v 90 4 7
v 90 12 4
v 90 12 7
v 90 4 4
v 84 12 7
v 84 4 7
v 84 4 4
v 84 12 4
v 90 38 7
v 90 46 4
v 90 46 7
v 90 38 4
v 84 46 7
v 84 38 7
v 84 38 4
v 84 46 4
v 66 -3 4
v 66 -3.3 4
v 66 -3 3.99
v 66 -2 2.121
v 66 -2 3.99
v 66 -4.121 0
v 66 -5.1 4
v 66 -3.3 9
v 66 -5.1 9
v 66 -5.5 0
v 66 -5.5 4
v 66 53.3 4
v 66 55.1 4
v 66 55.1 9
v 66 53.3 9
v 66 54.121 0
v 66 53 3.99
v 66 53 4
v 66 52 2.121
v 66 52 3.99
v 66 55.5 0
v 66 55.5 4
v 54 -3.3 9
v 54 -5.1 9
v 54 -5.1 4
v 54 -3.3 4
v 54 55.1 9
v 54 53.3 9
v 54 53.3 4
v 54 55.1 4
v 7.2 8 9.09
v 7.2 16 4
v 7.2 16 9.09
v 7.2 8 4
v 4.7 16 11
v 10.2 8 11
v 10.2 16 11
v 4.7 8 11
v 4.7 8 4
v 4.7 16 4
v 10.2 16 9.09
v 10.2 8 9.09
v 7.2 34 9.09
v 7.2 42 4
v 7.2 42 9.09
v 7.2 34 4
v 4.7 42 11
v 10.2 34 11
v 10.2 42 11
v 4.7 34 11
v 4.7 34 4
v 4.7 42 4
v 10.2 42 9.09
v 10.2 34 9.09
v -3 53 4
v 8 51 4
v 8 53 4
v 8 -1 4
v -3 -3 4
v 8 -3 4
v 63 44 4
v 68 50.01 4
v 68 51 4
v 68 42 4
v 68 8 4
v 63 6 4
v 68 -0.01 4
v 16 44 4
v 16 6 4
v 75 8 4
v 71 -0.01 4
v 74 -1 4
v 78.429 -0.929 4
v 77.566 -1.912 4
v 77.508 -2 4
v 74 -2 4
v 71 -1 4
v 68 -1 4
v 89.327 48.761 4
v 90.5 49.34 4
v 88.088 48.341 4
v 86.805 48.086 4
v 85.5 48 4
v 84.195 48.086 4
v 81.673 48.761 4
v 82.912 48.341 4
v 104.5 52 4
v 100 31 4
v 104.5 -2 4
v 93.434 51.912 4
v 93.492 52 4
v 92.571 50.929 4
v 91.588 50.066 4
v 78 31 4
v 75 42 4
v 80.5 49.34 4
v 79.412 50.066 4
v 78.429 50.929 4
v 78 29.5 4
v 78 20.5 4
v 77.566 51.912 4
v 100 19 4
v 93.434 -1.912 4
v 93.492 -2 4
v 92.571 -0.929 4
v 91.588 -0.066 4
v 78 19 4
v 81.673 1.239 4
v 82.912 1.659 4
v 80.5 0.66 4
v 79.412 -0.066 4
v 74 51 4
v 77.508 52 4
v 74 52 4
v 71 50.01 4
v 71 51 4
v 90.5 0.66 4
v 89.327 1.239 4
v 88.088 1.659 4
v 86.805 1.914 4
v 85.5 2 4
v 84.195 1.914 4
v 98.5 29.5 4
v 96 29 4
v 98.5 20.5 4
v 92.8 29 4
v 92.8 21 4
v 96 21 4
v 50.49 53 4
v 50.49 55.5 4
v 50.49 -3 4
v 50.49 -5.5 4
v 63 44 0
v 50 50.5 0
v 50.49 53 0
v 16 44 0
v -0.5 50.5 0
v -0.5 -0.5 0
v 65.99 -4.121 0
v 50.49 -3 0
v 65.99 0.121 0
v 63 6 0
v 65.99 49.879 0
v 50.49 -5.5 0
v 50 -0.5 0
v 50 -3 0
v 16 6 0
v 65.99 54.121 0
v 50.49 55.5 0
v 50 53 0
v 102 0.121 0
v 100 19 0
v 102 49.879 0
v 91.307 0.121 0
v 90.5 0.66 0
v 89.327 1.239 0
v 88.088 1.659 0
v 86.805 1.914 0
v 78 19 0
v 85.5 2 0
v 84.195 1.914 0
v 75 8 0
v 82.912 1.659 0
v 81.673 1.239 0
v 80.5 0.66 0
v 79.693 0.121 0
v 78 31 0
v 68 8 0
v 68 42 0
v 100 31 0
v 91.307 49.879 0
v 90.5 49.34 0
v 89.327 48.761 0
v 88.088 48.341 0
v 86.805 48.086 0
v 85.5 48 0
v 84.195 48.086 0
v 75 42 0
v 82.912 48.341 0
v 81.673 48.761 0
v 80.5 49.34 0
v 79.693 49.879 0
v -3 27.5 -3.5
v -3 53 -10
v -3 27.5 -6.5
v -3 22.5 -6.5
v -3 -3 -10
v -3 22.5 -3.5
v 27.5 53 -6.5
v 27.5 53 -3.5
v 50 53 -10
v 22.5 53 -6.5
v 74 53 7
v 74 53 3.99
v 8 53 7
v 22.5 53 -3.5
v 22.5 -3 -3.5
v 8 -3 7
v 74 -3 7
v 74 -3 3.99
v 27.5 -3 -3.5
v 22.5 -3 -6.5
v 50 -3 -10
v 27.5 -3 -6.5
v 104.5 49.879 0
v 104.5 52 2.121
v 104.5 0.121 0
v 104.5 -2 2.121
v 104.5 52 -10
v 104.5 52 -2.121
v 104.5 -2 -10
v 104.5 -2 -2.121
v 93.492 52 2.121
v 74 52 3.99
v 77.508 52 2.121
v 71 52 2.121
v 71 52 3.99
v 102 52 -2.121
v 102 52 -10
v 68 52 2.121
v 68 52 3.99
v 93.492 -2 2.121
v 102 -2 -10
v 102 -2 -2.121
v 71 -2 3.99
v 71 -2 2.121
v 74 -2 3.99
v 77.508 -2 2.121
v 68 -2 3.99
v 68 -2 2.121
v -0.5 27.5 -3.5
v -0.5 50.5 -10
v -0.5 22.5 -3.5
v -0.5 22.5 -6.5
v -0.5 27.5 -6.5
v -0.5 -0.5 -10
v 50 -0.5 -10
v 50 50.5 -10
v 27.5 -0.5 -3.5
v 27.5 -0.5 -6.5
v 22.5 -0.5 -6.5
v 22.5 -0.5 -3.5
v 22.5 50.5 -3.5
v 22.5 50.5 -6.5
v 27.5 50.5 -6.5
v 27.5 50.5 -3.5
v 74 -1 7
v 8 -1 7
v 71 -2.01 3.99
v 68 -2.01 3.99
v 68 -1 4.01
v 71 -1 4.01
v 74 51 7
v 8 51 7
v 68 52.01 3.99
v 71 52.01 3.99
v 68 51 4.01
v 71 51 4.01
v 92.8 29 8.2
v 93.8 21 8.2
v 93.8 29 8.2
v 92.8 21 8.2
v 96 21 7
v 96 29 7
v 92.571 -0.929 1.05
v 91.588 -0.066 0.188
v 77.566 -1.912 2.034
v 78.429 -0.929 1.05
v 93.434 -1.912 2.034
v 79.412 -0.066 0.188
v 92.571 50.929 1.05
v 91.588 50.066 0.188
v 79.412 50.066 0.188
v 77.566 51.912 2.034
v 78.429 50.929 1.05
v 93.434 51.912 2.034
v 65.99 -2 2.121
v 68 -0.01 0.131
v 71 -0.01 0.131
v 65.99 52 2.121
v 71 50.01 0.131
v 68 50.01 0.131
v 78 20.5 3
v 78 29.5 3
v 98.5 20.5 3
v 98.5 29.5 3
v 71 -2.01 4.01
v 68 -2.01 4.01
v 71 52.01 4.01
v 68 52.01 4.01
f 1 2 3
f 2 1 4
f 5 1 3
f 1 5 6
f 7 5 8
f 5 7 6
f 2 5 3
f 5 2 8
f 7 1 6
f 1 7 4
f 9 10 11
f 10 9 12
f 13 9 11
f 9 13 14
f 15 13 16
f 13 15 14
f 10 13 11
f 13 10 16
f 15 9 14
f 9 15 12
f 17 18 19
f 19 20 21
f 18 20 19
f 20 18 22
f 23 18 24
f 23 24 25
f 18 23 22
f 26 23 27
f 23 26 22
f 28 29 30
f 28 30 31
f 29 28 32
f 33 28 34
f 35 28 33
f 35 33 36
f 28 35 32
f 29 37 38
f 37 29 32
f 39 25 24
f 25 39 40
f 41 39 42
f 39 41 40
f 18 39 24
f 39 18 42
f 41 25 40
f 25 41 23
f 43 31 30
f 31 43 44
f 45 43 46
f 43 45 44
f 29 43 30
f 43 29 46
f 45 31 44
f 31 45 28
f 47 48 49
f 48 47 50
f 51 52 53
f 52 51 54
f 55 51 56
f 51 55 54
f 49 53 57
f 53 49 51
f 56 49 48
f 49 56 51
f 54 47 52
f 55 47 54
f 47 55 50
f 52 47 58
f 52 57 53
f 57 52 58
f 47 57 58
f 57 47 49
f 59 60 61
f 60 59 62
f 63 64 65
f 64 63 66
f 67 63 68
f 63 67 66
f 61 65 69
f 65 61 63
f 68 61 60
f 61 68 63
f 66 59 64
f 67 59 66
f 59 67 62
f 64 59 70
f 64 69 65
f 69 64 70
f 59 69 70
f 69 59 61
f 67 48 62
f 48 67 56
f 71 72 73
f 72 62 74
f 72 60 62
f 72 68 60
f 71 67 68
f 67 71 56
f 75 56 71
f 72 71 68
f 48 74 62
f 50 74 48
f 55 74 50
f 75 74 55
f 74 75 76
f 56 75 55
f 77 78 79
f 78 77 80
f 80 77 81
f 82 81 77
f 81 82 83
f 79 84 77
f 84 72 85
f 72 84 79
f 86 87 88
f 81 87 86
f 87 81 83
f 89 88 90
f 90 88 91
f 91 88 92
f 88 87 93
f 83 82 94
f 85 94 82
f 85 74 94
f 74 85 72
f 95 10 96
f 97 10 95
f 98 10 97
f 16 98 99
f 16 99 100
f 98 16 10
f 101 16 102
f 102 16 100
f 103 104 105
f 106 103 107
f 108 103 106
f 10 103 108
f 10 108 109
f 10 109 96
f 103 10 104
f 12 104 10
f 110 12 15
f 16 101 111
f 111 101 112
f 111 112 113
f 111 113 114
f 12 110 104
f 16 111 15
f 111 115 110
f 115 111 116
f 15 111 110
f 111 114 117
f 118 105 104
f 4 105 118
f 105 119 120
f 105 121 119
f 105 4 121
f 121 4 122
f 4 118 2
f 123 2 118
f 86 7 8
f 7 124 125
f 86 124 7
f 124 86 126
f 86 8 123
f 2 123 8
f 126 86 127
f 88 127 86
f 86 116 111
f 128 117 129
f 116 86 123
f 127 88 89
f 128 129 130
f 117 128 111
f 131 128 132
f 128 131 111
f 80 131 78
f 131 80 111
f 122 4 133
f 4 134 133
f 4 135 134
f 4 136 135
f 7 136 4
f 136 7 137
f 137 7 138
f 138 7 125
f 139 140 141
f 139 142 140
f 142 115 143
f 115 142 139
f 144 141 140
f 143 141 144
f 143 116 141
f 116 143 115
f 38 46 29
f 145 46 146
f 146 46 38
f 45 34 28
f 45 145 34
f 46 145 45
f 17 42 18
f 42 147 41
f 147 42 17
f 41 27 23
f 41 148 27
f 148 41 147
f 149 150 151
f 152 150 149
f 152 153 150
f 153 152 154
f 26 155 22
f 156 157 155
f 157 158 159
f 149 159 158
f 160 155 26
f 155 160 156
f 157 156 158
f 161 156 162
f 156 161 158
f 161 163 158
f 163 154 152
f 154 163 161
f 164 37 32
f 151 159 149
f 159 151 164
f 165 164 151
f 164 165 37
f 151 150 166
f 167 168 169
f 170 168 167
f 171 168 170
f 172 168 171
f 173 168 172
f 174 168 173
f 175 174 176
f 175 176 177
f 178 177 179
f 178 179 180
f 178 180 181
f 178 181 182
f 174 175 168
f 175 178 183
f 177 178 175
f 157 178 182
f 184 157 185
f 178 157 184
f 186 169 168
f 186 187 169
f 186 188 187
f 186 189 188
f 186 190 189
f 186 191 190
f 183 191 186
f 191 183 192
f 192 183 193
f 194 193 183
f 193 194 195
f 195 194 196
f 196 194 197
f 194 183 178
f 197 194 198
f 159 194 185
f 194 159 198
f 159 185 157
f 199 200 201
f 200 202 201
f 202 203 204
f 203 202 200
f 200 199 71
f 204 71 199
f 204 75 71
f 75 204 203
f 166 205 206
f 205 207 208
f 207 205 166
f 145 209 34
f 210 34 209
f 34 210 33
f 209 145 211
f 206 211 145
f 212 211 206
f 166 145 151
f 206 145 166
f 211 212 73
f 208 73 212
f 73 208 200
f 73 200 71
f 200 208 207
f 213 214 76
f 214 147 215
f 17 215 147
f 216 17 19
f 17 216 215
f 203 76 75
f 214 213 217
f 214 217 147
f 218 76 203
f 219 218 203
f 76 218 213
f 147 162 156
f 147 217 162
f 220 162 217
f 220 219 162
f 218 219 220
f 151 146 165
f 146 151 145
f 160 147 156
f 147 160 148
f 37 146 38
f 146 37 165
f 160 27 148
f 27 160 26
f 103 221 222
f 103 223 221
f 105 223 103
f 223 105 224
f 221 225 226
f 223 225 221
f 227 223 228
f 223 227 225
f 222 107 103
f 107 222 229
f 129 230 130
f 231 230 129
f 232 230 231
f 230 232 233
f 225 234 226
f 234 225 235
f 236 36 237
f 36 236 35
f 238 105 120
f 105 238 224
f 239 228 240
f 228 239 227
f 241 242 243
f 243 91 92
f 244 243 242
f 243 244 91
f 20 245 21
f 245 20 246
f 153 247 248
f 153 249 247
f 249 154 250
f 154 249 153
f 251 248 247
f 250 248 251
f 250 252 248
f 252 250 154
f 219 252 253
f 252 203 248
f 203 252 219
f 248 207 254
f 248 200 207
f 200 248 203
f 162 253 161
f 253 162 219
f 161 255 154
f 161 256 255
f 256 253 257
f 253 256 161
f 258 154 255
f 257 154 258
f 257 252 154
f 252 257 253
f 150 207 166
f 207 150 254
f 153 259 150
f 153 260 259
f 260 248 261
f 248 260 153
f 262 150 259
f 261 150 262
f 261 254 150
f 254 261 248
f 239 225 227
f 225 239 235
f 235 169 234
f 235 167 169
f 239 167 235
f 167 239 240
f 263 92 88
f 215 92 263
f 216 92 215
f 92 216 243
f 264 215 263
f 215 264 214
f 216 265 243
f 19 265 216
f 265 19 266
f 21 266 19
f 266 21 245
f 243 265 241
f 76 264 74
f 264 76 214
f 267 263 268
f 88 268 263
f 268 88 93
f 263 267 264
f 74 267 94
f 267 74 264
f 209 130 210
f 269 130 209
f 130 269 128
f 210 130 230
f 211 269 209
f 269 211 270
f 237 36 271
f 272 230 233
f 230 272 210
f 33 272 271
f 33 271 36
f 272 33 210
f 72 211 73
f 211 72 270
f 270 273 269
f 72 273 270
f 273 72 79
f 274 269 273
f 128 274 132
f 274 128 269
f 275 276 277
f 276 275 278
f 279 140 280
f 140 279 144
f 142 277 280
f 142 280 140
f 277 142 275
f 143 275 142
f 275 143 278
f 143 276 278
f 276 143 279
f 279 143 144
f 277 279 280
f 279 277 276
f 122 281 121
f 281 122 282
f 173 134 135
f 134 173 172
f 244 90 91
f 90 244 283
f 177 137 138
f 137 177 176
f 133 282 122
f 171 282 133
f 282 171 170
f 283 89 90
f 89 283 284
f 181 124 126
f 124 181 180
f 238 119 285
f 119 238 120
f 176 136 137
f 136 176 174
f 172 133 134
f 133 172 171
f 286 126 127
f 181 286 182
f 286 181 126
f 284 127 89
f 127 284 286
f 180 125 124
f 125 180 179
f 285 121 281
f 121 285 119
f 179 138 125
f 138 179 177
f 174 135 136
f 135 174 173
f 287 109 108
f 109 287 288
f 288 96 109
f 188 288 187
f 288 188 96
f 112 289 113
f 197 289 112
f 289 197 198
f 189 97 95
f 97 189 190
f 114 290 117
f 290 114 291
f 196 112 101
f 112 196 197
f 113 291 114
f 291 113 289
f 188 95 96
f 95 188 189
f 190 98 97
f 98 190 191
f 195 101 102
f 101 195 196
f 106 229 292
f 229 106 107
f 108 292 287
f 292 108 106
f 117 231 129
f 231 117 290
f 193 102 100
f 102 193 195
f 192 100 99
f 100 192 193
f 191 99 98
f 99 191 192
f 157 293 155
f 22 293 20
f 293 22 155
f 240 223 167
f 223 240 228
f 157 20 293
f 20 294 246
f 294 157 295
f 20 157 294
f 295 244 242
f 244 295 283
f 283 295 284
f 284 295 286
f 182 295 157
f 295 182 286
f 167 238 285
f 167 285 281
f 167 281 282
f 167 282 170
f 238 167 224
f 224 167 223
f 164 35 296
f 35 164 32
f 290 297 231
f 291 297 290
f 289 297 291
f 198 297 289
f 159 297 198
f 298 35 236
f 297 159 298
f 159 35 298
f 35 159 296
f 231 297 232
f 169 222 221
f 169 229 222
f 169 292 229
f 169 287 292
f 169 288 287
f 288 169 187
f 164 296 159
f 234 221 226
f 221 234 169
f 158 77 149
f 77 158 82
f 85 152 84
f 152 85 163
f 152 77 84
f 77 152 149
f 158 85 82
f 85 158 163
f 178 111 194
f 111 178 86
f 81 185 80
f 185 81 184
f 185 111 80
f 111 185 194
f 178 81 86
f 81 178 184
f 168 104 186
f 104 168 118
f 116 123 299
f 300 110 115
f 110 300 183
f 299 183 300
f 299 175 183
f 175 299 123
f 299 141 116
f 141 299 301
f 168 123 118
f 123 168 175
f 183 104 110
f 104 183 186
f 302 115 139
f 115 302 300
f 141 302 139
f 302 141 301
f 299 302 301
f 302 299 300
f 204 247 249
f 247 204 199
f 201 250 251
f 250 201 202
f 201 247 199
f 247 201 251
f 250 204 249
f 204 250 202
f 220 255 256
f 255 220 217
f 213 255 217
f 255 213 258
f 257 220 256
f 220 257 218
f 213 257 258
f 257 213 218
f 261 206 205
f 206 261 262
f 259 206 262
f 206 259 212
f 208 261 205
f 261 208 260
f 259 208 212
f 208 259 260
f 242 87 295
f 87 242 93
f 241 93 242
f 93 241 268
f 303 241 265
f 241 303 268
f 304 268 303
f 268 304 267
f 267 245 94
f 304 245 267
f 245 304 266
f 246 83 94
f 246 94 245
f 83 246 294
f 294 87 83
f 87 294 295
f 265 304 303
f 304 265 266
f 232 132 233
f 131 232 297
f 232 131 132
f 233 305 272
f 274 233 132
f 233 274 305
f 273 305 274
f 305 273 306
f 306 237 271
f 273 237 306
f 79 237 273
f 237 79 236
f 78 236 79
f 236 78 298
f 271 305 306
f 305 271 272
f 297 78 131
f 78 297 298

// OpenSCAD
// Saddle tray for the Raspberry Pi 5. Tool free, no screws.
// Rests on the LDNIO Z11 socket extender and the Cudy AC1200 (RE1200)
// WiFi extender plugged into the Z11's right face.
//
// Frame: X runs along the wall, left to right. Y runs away from the wall.
// Z up. Origin: left wall-side corner of the Z11 top face, Z=0 at the
// Z11 top plane. The plate caps the Z11, a skirt grips three cube sides,
// an arm crosses over the Cudy plug hump and a foot steps down onto its
// flat top, between the antennas.
//
// Pi mount, slide-in: edge ribs lift the board 3mm, side guide walls set
// it straight, two pockets hook over the board's left edge, a spring
// latch clicks behind the right edge. Press the latch tab down, slide
// the board right, it is out. The pocket gap avoids the microSD card.
// Orient the Pi with the USB-C edge facing the room, ports edge right.
//
// Antennas: flared notches on the arm sides nest around the antenna
// bases as lateral guides only. The antennas carry no vertical load.
//
// Print: upright, as modeled, skirt and foot on the bed. No supports;
// the plate underside prints as bridges, hidden in use. Bambu Lab A1
// Mini, PLA. Regenerate STL: openscad -o pi5-saddle.stl pi5-saddle.scad
//
// Test fit first. Rocking: tune cudy_drop. Tight or loose on the cube:
// tune clr. Latch too stiff or weak: tune nub_h. One variable, one
// reprint.

clr = 0.5;        // clearance added around measured device sizes
wall = 2.5;       // skirt, foot, and pocket wall thickness
plate_t = 4;      // tray plate thickness

// LDNIO Z11, measured
z11 = 50;         // cube top, both directions; whole cube 50x50x50
skirt_drop = 10;  // skirt depth down the cube sides; equals cudy_drop so the print sits flat on the bed

// Cudy AC1200, measured plugged into the Z11's right face
cudy_hump = 16;   // plug hump length before the flat zone; its top must stay below the Z11 top
cudy_flat = 38;   // usable flat length on the Cudy top
cudy_drop = 10;   // Cudy flat top sits this far below the Z11 top
arm_w = 54;       // arm width at the antennas; the gap is 58, keep under 55

// antenna guide notches, tune after the first fit
notch_r = 10;     // flare radius
notch_bite = 4;   // how deep the flare cuts into the arm edge
ant_x = 85.5;     // notch center along X, default mid flat zone

// Raspberry Pi 5, long side parallel to the wall
pi_l = 85;
pi_w = 56;
pcb_t = 1.8;      // board thickness
pcb_tol = 0.3;    // slide clearance, sides and top
rib_h = 3;        // standoff under the board, clears the microSD card

// latch
nub_h = 1.2;      // how far the nub rises above the board's seating plane
tab_t = 1;        // spring tab thickness

// zip tie anchors, fallback only, skip the ties if the fit is snug
slot_l = 5;
slot_w = 3;

ch = 3;           // chamfer cut size on the arm's lower edges
eps = 0.01;
$fn = 48;

// derived
plat_x0 = -(clr + wall);          // platform outer left edge
plat_y0 = -(clr + wall);          // platform outer wall-side edge
plat_y1 = z11 + clr + wall;       // platform outer room-side edge
arm_x0 = z11 + clr;               // arm starts at the cube's right face
arm_x1 = arm_x0 + cudy_hump + cudy_flat;  // arm ends at the far edge of the flat
arm_y0 = z11/2 - arm_w/2;
arm_y1 = z11/2 + arm_w/2;
wide_x1 = 66;                     // guide wall section ends before the antennas
wide_y0 = arm_y0 - 3.5;           // wider arm section under the guide walls
wide_y1 = arm_y1 + 3.5;

pi_x0 = 7.5;                      // board left edge; the pocket stop sets this
pi_y0 = z11/2 - pi_w/2;
pi_top = plate_t + rib_h + pcb_t; // board top surface
lip_z = pi_top + pcb_tol;         // pocket lip underside
nub_x = pi_x0 + pi_l + pcb_tol;   // latch nub face behind the board

difference() {
    union() {
        // platform plate over the Z11
        translate([plat_x0, plat_y0, 0])
            cube([arm_x0 - plat_x0, plat_y1 - plat_y0, plate_t]);
        // arm plate, wide under the guide walls, narrow past the antennas
        translate([arm_x0 - eps, wide_y0, 0])
            cube([wide_x1 - arm_x0 + eps, wide_y1 - wide_y0, plate_t]);
        translate([wide_x1 - eps, arm_y0, 0])
            cube([arm_x1 - wide_x1 + eps, arm_w, plate_t]);
        // skirt, three sides: left, wall side, room side; right stays open
        translate([plat_x0, plat_y0, -skirt_drop])
            cube([wall, plat_y1 - plat_y0, skirt_drop + eps]);
        translate([plat_x0, plat_y0, -skirt_drop])
            cube([z11 - plat_x0, wall, skirt_drop + eps]);
        translate([plat_x0, plat_y1 - wall, -skirt_drop])
            cube([z11 - plat_x0, wall, skirt_drop + eps]);
        // foot, drops onto the Cudy flat top
        translate([arm_x1 - wall, arm_y0, -cudy_drop])
            cube([wall, arm_w, cudy_drop + eps]);

        // edge ribs the board slides on, outside the GPIO pin rows,
        // stopping short of the antenna notch flares
        translate([pi_x0 + 0.5, pi_y0, plate_t - eps])
            cube([66, 2, rib_h + eps]);
        translate([pi_x0 + 0.5, pi_y0 + pi_w - 2, plate_t - eps])
            cube([66, 2, rib_h + eps]);
        // rib pads under the board's right end
        for (y = [pi_y0 + 7, pi_y0 + pi_w - 15])
            translate([84, y, plate_t - eps]) cube([6, 8, rib_h + eps]);

        // side guide walls, no lips, clear of every connector
        for (y = [pi_y0 - pcb_tol - 1.8, pi_y0 + pi_w + pcb_tol])
            translate([54, y, plate_t - eps]) cube([12, 1.8, 5 + eps]);

        // left pockets: stop wall plus lip over the board edge,
        // split so the microSD card zone stays open
        for (y = [pi_y0 + 11, pi_y0 + 37])
            translate([pi_x0 - pcb_tol - wall, y, plate_t - eps]) {
                cube([wall, 8, lip_z + 1.9 - plate_t + eps]);
                translate([0, 0, lip_z - plate_t])
                    cube([wall + 3, 8, 1.9 + eps]);
            }

        // latch nub on the spring tab, vertical face left, ramp right
        hull() {
            translate([nub_x, 21, plate_t - eps])
                cube([1, 8, rib_h + nub_h + eps]);
            translate([nub_x, 21, plate_t - eps])
                cube([3.2, 8, rib_h + eps]);
        }
    }

    // vent windows under the board, also thumb access from below
    translate([16, 6, -eps]) cube([47, z11 - 12, plate_t + 2*eps]);
    translate([68, 8, -eps]) cube([7, 34, plate_t + 2*eps]);

    // spring tab: U slot around it, thinned from below
    translate([78, 19, -1]) cube([22, 1.5, plate_t + 6]);
    translate([78, 29.5, -1]) cube([22, 1.5, plate_t + 6]);
    translate([98.5, 19, -1]) cube([1.5, 12, plate_t + 6]);
    translate([78, 20.5 - eps, -eps]) cube([20.5 + eps, 9 + 2*eps, plate_t - tab_t + eps]);

    // zip tie slots in the three skirts, one loop around the cube
    translate([plat_x0 - eps, z11/2 - slot_l/2, -6.5])
        cube([wall + 2*eps, slot_l, slot_w]);
    translate([z11/2 - slot_l/2, plat_y0 - eps, -6.5])
        cube([slot_l, wall + 2*eps, slot_w]);
    translate([z11/2 - slot_l/2, plat_y1 - wall - eps, -6.5])
        cube([slot_l, wall + 2*eps, slot_w]);

    // zip tie notches on the arm edges, one loop around arm and Cudy
    translate([68, arm_y0 - eps, -eps]) cube([slot_w, 2, plate_t + 2*eps]);
    translate([68, arm_y1 - 2 + eps, -eps]) cube([slot_w, 2, plate_t + 2*eps]);

    // antenna guide notches, flares that nest around the antenna bases
    for (y = [z11/2 - (arm_w/2 + notch_r - notch_bite),
              z11/2 + (arm_w/2 + notch_r - notch_bite)])
        translate([ant_x, y, -1]) cylinder(r = notch_r, h = plate_t + 2);

    // chamfer the arm's lower edges so it threads between the antennas
    for (y = [arm_y0, arm_y1])
        translate([(wide_x1 + arm_x1)/2, y, 0])
            rotate([45, 0, 0])
                cube([arm_x1 - wide_x1 + 2*eps, ch, ch], center = true);
}
